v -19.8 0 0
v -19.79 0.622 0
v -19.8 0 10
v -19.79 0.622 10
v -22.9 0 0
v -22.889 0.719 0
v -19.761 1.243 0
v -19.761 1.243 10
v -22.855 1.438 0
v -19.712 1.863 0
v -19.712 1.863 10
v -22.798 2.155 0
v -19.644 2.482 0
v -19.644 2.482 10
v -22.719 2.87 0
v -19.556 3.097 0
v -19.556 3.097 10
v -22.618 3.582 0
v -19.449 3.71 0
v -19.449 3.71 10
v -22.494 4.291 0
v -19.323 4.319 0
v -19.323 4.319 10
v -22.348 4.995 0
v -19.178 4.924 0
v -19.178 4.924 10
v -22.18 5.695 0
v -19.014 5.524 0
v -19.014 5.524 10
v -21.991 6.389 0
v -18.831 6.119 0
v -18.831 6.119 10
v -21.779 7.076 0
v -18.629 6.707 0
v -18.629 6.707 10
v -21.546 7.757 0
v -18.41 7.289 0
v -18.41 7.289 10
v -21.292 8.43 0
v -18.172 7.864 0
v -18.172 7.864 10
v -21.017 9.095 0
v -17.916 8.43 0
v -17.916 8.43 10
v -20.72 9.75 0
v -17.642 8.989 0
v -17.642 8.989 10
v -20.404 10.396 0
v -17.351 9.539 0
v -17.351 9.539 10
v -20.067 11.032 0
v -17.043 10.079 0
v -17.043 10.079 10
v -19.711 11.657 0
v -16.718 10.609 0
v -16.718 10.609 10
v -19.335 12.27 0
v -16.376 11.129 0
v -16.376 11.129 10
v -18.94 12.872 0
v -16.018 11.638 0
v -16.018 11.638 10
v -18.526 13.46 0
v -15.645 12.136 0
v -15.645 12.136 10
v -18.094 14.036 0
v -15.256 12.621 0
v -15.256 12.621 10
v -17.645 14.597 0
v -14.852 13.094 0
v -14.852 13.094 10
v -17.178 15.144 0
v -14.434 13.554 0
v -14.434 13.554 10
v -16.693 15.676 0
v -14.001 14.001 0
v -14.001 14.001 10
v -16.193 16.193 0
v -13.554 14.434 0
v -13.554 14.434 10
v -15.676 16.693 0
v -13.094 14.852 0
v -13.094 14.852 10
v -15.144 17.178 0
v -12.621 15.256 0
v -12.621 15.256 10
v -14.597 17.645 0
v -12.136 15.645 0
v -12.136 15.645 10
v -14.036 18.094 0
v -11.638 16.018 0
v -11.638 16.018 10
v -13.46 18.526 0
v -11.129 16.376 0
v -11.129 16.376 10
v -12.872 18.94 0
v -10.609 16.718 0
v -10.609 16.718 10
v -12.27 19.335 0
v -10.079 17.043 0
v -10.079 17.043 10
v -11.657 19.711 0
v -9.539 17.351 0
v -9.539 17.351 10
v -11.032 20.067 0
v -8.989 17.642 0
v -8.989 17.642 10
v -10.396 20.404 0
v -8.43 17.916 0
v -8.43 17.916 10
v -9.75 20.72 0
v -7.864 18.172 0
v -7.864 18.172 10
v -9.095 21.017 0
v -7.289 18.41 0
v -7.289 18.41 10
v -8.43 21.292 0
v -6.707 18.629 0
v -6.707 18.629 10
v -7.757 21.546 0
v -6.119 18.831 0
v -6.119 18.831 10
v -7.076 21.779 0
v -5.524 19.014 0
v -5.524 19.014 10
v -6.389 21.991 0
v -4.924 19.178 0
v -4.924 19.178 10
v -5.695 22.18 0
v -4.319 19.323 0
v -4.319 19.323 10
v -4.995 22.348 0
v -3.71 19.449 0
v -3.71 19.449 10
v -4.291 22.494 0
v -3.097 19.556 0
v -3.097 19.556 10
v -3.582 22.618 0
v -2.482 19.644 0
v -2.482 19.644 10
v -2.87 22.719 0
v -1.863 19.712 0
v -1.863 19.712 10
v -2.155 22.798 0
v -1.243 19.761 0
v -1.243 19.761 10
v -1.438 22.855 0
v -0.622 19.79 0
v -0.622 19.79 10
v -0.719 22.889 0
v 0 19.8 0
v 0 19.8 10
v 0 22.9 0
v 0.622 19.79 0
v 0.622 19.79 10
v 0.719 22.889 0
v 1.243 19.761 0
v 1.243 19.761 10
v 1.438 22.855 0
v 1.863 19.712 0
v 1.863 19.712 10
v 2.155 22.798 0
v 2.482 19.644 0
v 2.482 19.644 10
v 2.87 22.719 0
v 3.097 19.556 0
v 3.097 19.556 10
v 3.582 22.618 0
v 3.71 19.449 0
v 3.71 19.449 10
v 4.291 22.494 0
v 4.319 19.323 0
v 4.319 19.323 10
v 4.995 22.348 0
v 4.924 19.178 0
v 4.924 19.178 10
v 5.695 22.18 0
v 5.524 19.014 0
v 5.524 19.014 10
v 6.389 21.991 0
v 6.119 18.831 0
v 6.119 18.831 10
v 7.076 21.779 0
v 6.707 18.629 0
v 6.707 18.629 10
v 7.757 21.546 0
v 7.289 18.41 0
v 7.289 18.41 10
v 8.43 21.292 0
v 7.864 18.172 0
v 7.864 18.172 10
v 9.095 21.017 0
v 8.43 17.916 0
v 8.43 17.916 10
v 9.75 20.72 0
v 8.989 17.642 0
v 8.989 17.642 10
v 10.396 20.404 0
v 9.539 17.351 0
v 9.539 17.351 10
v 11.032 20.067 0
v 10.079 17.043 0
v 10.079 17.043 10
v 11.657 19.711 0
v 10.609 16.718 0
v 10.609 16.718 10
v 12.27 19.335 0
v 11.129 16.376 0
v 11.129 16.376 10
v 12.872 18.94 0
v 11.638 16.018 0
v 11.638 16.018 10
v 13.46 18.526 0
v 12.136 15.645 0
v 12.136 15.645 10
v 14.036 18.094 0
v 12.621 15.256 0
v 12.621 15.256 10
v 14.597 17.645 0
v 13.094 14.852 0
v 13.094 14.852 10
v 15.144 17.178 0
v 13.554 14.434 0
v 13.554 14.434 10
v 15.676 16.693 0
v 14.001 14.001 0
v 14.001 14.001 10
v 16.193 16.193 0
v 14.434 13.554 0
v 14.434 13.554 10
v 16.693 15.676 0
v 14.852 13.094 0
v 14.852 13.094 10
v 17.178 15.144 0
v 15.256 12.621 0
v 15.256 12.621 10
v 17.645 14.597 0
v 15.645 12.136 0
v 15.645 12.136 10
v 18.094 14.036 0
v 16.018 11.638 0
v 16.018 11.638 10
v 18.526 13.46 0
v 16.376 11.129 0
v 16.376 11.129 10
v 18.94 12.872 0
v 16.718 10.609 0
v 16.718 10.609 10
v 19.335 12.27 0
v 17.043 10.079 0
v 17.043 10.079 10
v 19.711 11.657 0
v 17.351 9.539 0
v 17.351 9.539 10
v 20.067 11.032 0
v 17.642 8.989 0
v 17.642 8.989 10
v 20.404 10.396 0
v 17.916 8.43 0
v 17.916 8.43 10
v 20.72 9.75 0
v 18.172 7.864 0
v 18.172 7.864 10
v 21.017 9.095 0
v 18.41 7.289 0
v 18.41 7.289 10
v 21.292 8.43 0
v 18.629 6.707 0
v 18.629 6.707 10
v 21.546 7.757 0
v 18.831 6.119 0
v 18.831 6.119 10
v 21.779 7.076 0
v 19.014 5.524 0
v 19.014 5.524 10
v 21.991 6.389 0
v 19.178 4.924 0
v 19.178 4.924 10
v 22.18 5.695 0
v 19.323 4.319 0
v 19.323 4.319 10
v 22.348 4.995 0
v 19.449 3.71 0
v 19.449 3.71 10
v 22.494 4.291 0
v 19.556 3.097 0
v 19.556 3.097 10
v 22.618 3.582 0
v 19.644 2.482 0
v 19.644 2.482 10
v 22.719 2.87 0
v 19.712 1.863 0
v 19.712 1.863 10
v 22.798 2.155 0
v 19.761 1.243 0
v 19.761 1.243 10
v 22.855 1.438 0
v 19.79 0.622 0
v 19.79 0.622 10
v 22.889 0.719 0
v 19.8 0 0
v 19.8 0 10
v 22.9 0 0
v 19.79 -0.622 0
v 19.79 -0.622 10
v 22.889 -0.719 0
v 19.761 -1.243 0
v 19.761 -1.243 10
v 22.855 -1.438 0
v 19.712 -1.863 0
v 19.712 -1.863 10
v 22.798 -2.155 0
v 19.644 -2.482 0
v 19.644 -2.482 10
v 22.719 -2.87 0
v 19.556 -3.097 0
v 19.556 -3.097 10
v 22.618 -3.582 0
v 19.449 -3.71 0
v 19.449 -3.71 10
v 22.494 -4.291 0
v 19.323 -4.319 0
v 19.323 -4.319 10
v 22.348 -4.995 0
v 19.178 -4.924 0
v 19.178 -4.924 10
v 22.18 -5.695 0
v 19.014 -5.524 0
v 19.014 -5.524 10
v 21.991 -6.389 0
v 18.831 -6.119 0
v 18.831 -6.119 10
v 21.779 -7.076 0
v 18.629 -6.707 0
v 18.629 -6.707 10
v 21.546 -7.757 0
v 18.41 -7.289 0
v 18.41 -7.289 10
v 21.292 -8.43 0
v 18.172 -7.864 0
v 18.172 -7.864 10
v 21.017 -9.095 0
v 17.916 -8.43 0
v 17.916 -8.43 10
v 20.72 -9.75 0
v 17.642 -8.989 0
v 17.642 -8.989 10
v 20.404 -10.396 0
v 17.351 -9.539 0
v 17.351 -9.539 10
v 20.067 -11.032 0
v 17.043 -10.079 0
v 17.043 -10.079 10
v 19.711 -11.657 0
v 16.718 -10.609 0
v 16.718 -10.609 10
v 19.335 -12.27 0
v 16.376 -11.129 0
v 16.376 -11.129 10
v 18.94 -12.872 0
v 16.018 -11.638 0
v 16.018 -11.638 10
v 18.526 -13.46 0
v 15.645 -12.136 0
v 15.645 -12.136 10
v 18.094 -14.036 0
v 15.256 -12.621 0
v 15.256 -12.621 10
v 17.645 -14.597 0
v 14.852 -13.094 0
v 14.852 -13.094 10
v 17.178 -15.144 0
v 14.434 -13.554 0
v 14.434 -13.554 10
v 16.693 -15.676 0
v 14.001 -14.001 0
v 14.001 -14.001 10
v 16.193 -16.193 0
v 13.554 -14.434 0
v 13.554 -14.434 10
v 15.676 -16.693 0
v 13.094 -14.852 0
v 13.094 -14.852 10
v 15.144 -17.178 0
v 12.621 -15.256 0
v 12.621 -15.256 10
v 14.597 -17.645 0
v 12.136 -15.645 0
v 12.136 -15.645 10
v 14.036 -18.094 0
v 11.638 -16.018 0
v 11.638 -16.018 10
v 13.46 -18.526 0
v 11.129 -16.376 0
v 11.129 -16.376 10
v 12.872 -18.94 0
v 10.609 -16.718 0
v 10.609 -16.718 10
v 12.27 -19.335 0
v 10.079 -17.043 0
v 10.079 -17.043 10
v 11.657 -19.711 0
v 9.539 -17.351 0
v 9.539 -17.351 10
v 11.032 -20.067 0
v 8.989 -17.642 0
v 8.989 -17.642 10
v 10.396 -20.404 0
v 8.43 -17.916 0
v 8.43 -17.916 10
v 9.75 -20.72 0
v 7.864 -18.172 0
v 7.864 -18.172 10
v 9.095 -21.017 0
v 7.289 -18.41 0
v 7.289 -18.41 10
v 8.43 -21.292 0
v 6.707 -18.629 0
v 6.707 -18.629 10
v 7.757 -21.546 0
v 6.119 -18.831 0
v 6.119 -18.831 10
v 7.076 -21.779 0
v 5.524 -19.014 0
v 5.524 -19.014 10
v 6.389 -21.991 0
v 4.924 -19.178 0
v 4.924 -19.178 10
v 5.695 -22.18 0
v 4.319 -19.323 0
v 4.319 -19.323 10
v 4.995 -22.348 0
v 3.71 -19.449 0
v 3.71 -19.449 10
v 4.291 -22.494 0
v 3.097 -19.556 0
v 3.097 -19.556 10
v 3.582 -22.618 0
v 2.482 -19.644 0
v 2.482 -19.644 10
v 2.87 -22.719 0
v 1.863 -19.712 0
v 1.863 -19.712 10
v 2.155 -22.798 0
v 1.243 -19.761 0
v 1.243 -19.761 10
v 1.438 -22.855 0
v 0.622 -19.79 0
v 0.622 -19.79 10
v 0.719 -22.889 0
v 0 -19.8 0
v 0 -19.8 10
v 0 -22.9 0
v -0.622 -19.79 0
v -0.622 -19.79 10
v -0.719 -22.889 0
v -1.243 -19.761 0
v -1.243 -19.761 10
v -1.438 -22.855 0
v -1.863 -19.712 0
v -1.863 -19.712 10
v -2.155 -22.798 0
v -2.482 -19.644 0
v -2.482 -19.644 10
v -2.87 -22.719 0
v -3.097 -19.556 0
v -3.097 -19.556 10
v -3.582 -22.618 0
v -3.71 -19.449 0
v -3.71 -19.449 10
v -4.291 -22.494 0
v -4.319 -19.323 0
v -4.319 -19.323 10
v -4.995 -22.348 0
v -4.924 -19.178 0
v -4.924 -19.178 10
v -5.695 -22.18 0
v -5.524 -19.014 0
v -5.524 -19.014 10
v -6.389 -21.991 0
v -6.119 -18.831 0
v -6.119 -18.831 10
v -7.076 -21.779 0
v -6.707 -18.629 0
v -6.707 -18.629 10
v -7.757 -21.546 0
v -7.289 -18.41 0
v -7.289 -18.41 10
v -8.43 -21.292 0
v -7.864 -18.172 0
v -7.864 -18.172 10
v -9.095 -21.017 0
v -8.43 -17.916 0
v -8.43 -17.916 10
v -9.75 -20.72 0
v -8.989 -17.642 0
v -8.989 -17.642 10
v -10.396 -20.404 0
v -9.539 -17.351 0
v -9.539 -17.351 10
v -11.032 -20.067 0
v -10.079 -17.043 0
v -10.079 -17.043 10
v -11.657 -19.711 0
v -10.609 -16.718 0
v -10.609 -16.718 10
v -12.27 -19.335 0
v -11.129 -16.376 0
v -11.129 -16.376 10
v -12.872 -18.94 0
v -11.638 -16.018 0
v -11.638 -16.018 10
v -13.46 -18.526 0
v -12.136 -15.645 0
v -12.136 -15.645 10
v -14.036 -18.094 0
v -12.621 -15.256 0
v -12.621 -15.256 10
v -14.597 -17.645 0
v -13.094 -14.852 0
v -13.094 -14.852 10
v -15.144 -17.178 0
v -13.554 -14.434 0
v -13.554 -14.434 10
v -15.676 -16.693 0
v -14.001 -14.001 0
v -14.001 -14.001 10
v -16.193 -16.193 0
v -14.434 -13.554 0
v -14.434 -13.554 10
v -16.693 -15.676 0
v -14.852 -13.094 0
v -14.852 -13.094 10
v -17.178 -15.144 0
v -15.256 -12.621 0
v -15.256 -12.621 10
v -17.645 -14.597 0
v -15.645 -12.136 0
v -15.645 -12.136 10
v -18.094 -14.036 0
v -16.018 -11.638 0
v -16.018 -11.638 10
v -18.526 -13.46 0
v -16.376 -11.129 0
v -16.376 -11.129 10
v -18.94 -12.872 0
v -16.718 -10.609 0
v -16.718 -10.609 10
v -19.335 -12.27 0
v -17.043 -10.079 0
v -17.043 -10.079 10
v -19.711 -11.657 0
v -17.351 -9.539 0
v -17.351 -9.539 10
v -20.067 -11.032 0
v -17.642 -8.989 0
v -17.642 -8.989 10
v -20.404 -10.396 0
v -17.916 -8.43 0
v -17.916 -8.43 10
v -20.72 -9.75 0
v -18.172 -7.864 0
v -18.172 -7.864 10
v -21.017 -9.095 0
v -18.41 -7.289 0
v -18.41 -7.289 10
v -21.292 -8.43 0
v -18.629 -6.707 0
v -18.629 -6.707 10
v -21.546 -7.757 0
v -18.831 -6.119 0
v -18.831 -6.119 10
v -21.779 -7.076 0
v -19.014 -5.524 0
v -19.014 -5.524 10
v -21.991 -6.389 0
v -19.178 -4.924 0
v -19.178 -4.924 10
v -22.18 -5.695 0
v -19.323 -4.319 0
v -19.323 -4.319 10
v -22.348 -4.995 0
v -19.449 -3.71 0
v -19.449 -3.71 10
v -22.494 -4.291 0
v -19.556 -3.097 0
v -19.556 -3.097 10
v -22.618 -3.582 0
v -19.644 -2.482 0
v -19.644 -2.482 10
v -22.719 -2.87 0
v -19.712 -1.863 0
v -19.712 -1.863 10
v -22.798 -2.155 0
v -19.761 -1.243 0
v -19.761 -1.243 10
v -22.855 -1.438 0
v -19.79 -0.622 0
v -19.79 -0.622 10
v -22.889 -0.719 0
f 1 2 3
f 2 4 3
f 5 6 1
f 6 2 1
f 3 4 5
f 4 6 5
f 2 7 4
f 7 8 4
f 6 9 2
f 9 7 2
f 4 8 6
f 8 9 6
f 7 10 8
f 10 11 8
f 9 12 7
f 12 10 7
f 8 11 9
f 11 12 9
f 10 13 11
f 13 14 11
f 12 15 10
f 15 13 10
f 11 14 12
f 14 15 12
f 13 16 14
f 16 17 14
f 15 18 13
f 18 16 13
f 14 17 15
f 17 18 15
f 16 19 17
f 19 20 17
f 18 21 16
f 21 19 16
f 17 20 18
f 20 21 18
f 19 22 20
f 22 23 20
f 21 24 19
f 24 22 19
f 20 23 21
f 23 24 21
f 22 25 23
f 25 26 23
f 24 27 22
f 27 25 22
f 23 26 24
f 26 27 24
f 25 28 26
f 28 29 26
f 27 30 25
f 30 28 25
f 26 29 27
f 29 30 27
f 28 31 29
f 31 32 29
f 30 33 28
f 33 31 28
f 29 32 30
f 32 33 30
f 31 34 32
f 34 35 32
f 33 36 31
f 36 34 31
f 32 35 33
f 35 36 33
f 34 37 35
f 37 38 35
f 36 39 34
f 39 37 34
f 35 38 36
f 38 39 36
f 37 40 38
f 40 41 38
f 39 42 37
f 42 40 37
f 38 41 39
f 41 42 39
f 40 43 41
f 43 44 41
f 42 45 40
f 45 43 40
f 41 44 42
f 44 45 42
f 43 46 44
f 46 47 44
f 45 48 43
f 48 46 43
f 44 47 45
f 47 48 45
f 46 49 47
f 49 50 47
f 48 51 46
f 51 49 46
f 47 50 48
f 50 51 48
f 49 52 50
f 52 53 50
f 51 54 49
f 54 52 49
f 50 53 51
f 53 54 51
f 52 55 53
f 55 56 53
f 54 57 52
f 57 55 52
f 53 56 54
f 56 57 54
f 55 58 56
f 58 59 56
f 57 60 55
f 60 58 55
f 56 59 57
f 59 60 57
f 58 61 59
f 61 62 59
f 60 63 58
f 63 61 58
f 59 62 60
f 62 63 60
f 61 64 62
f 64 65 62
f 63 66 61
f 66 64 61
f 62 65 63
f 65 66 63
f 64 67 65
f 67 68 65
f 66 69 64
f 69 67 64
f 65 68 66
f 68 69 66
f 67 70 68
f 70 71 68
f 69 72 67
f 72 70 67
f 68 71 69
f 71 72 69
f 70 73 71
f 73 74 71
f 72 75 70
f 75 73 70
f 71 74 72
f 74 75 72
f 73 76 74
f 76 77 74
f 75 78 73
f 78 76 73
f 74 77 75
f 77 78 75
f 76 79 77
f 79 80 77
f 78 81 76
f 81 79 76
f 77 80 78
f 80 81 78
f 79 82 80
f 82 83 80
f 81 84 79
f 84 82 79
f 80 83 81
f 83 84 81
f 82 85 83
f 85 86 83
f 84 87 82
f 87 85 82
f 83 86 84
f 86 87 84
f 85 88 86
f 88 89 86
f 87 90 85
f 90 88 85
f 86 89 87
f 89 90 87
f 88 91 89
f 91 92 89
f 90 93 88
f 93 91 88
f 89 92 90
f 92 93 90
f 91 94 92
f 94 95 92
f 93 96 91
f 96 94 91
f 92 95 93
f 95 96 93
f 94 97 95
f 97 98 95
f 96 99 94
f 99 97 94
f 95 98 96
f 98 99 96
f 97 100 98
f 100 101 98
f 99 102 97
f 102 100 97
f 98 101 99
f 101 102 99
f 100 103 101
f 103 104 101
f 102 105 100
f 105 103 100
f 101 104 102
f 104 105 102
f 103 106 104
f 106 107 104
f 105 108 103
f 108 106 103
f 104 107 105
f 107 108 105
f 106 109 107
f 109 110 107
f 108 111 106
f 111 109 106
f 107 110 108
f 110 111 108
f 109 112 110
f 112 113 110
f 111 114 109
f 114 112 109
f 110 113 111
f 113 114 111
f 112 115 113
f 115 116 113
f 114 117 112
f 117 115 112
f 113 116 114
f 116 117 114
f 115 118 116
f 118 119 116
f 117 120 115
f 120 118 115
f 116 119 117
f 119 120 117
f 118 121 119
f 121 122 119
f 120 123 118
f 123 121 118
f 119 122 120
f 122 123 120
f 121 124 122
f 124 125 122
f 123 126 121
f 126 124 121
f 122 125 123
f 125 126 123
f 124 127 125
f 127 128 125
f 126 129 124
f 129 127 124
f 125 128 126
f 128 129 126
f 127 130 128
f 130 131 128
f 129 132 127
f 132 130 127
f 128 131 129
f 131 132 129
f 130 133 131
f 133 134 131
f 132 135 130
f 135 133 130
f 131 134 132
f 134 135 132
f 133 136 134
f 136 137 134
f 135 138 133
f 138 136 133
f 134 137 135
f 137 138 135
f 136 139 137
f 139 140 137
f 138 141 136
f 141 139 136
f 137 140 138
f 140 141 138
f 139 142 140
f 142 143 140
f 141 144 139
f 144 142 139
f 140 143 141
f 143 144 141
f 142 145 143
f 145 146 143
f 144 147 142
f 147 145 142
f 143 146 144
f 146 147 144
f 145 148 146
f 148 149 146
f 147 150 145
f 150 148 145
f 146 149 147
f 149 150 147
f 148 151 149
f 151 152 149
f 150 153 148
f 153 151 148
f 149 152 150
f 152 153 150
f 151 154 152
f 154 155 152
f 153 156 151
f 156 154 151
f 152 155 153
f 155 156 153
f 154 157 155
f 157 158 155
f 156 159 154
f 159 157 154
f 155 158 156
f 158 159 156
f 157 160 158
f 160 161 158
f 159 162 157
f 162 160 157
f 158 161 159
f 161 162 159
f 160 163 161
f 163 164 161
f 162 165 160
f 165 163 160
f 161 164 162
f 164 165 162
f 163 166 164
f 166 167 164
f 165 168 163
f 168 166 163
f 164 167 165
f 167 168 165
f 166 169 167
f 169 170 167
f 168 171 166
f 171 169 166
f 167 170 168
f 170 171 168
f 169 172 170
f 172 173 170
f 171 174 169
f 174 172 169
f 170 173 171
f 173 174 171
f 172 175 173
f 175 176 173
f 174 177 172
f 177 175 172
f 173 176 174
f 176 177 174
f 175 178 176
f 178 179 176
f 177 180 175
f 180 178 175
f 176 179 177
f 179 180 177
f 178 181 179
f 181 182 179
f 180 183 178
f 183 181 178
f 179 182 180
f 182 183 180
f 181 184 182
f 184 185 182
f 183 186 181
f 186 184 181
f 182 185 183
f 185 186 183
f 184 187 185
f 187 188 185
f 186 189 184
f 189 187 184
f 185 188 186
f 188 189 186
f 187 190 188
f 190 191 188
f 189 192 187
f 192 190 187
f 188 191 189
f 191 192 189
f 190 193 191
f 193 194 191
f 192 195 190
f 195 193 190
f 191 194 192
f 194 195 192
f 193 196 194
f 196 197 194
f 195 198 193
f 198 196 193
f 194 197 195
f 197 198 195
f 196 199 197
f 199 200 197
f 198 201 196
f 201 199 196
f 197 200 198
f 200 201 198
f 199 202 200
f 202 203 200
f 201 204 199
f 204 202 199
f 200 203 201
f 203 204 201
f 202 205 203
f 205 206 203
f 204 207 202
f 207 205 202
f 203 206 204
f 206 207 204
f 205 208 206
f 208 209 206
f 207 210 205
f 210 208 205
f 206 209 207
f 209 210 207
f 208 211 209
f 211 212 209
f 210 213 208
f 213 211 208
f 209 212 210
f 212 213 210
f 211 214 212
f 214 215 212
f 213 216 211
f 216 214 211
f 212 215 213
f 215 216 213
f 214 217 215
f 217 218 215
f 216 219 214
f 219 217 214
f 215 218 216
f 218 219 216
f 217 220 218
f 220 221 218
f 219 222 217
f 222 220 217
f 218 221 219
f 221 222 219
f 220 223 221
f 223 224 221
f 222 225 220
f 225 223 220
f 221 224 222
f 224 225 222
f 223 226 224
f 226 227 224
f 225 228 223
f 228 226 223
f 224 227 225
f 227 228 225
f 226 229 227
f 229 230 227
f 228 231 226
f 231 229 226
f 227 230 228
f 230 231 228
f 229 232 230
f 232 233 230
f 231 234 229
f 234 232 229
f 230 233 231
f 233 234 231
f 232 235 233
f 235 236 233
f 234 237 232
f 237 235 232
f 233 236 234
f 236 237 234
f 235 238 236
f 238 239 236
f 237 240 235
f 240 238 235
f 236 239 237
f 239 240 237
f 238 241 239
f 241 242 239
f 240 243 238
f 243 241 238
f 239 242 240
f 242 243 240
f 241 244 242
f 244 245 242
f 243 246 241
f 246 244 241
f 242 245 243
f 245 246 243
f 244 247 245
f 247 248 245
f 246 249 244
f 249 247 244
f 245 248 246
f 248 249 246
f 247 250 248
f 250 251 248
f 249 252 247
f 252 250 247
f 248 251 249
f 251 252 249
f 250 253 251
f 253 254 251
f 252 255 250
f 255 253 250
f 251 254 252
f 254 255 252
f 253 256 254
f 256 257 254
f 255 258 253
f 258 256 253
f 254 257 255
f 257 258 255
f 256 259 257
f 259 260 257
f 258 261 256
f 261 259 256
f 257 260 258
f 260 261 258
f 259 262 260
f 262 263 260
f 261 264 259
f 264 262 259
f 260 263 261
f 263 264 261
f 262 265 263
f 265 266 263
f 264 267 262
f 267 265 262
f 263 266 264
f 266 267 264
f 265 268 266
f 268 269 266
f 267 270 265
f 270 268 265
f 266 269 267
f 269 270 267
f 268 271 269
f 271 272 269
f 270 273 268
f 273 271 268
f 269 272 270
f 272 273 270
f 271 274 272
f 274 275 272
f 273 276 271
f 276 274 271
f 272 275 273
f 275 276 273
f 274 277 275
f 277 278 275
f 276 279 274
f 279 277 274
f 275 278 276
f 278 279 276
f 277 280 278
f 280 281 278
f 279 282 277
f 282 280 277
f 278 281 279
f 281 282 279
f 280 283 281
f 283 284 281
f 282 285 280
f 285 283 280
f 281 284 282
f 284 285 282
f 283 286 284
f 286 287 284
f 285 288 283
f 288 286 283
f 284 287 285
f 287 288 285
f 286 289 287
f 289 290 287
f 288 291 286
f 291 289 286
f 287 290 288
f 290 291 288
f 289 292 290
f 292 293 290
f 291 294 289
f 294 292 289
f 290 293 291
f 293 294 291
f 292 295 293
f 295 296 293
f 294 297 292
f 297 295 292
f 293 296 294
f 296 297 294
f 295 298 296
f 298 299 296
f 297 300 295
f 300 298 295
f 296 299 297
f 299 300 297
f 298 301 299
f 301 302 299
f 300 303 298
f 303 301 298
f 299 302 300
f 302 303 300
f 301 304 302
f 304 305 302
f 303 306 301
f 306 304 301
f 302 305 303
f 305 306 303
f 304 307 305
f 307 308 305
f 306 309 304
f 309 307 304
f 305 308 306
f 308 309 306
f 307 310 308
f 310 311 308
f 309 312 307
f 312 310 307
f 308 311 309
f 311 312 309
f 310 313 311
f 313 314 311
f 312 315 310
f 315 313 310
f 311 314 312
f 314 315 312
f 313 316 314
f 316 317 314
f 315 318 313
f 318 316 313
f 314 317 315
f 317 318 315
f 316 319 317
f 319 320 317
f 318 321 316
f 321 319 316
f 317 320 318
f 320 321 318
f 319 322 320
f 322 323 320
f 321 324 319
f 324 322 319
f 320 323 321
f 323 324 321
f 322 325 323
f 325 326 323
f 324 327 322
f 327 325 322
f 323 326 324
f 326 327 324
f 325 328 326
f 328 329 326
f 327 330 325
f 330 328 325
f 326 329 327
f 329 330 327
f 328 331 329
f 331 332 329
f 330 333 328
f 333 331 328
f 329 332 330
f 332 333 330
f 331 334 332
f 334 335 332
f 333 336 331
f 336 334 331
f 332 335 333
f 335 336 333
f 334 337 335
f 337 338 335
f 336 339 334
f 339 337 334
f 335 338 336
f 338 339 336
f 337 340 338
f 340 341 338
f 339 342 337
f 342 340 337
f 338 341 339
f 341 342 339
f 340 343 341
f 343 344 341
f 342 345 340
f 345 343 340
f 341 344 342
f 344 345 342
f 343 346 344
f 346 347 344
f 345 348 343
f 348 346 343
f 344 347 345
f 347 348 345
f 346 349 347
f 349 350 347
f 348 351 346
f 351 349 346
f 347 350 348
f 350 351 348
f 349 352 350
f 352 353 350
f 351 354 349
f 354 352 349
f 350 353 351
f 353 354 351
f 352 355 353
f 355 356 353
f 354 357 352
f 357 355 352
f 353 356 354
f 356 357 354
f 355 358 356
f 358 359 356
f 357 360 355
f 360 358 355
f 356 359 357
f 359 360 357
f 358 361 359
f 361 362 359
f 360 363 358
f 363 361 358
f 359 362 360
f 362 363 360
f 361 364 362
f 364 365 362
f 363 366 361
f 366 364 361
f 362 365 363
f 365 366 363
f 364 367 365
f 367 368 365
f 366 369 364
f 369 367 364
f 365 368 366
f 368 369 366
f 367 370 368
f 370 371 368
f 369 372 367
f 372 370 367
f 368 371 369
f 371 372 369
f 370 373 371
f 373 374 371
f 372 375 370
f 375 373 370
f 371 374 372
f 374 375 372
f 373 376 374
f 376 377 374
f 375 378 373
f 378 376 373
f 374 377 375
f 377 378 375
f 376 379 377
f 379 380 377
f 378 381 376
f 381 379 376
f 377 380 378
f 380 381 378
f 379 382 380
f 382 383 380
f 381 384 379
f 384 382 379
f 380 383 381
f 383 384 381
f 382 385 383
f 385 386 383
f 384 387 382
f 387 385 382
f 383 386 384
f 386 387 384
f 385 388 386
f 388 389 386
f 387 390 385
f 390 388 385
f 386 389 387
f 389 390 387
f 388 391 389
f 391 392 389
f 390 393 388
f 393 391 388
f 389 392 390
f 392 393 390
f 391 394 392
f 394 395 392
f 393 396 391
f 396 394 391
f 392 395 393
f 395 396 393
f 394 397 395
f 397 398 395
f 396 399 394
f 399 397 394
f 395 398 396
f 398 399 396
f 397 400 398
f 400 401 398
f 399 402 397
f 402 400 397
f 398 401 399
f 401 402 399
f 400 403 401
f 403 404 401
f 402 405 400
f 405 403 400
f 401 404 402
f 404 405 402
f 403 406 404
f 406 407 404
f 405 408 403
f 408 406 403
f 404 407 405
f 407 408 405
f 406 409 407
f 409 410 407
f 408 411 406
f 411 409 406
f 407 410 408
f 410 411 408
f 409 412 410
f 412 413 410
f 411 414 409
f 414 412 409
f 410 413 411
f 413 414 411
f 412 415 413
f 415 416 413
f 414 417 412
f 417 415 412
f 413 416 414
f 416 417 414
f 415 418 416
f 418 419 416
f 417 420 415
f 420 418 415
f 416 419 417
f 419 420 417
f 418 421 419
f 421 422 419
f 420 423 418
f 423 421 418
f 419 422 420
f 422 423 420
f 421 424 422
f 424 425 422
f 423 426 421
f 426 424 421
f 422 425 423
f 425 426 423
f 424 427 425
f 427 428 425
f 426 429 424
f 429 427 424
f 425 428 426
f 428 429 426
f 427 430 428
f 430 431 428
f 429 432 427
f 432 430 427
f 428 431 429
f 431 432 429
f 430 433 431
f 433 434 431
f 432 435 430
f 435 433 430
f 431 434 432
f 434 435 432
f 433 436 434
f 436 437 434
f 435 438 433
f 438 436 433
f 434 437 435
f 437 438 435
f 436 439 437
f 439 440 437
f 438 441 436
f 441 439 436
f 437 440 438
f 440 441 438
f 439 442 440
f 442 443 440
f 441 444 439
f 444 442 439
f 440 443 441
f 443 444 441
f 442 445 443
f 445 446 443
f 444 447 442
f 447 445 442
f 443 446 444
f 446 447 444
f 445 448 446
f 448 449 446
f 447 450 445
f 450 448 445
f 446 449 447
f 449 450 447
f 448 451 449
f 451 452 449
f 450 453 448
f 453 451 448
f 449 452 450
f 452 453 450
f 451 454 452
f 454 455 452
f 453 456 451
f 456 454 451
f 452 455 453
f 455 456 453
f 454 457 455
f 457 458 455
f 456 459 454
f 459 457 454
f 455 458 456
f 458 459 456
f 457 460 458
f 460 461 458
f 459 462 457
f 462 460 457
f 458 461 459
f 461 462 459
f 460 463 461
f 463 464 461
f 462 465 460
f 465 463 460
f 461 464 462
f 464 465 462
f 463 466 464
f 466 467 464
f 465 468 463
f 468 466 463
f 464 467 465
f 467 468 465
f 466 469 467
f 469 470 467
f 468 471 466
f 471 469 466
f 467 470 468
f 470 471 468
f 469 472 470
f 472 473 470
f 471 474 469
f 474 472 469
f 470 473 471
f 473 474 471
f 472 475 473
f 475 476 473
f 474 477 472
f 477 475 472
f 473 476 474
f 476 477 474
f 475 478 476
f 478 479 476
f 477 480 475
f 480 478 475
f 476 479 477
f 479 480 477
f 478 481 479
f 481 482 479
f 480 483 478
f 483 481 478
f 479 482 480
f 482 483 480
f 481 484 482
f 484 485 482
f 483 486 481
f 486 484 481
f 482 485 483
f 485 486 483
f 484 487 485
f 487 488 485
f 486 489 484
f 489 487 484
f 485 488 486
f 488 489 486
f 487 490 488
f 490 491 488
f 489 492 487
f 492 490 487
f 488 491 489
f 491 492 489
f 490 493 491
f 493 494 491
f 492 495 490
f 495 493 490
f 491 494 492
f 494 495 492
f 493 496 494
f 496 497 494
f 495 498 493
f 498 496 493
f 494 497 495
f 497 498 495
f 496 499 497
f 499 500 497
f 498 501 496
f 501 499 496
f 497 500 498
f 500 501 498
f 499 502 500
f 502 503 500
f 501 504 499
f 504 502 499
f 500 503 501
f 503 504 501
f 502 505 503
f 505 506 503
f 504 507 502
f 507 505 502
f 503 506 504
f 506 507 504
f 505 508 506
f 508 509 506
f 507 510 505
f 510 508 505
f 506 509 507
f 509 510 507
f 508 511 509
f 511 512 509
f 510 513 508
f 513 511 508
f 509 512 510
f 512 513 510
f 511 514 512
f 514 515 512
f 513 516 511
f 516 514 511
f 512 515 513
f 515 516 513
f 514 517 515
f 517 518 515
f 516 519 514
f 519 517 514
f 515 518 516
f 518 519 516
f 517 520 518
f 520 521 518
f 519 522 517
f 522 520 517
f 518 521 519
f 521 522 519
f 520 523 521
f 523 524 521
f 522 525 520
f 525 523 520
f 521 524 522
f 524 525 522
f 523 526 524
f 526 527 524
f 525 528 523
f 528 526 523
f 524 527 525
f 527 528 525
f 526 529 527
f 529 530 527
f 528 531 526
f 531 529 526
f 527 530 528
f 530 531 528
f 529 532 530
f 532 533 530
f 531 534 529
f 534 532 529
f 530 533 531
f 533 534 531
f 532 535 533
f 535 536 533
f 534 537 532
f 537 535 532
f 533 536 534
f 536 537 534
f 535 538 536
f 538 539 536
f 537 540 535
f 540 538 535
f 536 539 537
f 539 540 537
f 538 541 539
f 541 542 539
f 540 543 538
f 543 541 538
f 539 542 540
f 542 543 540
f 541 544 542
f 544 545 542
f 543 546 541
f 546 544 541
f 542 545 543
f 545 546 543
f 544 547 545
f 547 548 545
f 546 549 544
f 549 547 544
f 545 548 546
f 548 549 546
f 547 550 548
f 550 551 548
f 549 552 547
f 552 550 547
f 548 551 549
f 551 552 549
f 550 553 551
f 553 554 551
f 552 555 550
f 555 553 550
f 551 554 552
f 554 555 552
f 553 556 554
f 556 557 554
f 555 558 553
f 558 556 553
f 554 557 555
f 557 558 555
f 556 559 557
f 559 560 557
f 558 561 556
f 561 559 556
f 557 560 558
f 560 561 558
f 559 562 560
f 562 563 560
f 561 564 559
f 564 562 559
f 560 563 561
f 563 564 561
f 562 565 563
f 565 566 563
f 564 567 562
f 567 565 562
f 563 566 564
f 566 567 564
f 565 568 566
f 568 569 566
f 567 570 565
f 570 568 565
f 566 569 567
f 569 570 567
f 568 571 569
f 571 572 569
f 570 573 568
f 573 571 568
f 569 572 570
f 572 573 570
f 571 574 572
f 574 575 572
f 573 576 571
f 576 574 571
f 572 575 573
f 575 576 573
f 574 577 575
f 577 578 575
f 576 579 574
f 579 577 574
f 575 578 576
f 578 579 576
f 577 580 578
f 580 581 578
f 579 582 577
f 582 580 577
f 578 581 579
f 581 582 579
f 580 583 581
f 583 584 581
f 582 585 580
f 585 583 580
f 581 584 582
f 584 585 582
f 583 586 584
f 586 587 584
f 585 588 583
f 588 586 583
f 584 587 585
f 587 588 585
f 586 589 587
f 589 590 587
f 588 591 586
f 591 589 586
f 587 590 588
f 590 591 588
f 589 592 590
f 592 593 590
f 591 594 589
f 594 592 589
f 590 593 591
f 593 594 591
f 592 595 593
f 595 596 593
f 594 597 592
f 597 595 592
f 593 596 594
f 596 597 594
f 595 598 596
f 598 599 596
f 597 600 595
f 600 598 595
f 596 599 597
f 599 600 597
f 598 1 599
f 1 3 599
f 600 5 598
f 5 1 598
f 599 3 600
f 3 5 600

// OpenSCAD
//in milimeters
//material flex
//t 90/245
hole_diameter=39.6;
outer_diameter=42.7;
thickness=10;

/*
translate([0,0,thickness/2]){
difference(){
//outer
cylinder(h=thickness,r=outer_diameter/2,center=true,$fn=100);
//hole
cylinder(h=thickness+2,r=hole_diameter/2,center=true,$fn=100);
}
}*/

triangle_points=[[0,0], [outer_diameter-hole_diameter,0],[0,thickness]];


module triang(){
translate([hole_diameter/2,0,0]) 
polygon(points=triangle_points);
}

//triang();

rotate_extrude($fn=200) triang();
